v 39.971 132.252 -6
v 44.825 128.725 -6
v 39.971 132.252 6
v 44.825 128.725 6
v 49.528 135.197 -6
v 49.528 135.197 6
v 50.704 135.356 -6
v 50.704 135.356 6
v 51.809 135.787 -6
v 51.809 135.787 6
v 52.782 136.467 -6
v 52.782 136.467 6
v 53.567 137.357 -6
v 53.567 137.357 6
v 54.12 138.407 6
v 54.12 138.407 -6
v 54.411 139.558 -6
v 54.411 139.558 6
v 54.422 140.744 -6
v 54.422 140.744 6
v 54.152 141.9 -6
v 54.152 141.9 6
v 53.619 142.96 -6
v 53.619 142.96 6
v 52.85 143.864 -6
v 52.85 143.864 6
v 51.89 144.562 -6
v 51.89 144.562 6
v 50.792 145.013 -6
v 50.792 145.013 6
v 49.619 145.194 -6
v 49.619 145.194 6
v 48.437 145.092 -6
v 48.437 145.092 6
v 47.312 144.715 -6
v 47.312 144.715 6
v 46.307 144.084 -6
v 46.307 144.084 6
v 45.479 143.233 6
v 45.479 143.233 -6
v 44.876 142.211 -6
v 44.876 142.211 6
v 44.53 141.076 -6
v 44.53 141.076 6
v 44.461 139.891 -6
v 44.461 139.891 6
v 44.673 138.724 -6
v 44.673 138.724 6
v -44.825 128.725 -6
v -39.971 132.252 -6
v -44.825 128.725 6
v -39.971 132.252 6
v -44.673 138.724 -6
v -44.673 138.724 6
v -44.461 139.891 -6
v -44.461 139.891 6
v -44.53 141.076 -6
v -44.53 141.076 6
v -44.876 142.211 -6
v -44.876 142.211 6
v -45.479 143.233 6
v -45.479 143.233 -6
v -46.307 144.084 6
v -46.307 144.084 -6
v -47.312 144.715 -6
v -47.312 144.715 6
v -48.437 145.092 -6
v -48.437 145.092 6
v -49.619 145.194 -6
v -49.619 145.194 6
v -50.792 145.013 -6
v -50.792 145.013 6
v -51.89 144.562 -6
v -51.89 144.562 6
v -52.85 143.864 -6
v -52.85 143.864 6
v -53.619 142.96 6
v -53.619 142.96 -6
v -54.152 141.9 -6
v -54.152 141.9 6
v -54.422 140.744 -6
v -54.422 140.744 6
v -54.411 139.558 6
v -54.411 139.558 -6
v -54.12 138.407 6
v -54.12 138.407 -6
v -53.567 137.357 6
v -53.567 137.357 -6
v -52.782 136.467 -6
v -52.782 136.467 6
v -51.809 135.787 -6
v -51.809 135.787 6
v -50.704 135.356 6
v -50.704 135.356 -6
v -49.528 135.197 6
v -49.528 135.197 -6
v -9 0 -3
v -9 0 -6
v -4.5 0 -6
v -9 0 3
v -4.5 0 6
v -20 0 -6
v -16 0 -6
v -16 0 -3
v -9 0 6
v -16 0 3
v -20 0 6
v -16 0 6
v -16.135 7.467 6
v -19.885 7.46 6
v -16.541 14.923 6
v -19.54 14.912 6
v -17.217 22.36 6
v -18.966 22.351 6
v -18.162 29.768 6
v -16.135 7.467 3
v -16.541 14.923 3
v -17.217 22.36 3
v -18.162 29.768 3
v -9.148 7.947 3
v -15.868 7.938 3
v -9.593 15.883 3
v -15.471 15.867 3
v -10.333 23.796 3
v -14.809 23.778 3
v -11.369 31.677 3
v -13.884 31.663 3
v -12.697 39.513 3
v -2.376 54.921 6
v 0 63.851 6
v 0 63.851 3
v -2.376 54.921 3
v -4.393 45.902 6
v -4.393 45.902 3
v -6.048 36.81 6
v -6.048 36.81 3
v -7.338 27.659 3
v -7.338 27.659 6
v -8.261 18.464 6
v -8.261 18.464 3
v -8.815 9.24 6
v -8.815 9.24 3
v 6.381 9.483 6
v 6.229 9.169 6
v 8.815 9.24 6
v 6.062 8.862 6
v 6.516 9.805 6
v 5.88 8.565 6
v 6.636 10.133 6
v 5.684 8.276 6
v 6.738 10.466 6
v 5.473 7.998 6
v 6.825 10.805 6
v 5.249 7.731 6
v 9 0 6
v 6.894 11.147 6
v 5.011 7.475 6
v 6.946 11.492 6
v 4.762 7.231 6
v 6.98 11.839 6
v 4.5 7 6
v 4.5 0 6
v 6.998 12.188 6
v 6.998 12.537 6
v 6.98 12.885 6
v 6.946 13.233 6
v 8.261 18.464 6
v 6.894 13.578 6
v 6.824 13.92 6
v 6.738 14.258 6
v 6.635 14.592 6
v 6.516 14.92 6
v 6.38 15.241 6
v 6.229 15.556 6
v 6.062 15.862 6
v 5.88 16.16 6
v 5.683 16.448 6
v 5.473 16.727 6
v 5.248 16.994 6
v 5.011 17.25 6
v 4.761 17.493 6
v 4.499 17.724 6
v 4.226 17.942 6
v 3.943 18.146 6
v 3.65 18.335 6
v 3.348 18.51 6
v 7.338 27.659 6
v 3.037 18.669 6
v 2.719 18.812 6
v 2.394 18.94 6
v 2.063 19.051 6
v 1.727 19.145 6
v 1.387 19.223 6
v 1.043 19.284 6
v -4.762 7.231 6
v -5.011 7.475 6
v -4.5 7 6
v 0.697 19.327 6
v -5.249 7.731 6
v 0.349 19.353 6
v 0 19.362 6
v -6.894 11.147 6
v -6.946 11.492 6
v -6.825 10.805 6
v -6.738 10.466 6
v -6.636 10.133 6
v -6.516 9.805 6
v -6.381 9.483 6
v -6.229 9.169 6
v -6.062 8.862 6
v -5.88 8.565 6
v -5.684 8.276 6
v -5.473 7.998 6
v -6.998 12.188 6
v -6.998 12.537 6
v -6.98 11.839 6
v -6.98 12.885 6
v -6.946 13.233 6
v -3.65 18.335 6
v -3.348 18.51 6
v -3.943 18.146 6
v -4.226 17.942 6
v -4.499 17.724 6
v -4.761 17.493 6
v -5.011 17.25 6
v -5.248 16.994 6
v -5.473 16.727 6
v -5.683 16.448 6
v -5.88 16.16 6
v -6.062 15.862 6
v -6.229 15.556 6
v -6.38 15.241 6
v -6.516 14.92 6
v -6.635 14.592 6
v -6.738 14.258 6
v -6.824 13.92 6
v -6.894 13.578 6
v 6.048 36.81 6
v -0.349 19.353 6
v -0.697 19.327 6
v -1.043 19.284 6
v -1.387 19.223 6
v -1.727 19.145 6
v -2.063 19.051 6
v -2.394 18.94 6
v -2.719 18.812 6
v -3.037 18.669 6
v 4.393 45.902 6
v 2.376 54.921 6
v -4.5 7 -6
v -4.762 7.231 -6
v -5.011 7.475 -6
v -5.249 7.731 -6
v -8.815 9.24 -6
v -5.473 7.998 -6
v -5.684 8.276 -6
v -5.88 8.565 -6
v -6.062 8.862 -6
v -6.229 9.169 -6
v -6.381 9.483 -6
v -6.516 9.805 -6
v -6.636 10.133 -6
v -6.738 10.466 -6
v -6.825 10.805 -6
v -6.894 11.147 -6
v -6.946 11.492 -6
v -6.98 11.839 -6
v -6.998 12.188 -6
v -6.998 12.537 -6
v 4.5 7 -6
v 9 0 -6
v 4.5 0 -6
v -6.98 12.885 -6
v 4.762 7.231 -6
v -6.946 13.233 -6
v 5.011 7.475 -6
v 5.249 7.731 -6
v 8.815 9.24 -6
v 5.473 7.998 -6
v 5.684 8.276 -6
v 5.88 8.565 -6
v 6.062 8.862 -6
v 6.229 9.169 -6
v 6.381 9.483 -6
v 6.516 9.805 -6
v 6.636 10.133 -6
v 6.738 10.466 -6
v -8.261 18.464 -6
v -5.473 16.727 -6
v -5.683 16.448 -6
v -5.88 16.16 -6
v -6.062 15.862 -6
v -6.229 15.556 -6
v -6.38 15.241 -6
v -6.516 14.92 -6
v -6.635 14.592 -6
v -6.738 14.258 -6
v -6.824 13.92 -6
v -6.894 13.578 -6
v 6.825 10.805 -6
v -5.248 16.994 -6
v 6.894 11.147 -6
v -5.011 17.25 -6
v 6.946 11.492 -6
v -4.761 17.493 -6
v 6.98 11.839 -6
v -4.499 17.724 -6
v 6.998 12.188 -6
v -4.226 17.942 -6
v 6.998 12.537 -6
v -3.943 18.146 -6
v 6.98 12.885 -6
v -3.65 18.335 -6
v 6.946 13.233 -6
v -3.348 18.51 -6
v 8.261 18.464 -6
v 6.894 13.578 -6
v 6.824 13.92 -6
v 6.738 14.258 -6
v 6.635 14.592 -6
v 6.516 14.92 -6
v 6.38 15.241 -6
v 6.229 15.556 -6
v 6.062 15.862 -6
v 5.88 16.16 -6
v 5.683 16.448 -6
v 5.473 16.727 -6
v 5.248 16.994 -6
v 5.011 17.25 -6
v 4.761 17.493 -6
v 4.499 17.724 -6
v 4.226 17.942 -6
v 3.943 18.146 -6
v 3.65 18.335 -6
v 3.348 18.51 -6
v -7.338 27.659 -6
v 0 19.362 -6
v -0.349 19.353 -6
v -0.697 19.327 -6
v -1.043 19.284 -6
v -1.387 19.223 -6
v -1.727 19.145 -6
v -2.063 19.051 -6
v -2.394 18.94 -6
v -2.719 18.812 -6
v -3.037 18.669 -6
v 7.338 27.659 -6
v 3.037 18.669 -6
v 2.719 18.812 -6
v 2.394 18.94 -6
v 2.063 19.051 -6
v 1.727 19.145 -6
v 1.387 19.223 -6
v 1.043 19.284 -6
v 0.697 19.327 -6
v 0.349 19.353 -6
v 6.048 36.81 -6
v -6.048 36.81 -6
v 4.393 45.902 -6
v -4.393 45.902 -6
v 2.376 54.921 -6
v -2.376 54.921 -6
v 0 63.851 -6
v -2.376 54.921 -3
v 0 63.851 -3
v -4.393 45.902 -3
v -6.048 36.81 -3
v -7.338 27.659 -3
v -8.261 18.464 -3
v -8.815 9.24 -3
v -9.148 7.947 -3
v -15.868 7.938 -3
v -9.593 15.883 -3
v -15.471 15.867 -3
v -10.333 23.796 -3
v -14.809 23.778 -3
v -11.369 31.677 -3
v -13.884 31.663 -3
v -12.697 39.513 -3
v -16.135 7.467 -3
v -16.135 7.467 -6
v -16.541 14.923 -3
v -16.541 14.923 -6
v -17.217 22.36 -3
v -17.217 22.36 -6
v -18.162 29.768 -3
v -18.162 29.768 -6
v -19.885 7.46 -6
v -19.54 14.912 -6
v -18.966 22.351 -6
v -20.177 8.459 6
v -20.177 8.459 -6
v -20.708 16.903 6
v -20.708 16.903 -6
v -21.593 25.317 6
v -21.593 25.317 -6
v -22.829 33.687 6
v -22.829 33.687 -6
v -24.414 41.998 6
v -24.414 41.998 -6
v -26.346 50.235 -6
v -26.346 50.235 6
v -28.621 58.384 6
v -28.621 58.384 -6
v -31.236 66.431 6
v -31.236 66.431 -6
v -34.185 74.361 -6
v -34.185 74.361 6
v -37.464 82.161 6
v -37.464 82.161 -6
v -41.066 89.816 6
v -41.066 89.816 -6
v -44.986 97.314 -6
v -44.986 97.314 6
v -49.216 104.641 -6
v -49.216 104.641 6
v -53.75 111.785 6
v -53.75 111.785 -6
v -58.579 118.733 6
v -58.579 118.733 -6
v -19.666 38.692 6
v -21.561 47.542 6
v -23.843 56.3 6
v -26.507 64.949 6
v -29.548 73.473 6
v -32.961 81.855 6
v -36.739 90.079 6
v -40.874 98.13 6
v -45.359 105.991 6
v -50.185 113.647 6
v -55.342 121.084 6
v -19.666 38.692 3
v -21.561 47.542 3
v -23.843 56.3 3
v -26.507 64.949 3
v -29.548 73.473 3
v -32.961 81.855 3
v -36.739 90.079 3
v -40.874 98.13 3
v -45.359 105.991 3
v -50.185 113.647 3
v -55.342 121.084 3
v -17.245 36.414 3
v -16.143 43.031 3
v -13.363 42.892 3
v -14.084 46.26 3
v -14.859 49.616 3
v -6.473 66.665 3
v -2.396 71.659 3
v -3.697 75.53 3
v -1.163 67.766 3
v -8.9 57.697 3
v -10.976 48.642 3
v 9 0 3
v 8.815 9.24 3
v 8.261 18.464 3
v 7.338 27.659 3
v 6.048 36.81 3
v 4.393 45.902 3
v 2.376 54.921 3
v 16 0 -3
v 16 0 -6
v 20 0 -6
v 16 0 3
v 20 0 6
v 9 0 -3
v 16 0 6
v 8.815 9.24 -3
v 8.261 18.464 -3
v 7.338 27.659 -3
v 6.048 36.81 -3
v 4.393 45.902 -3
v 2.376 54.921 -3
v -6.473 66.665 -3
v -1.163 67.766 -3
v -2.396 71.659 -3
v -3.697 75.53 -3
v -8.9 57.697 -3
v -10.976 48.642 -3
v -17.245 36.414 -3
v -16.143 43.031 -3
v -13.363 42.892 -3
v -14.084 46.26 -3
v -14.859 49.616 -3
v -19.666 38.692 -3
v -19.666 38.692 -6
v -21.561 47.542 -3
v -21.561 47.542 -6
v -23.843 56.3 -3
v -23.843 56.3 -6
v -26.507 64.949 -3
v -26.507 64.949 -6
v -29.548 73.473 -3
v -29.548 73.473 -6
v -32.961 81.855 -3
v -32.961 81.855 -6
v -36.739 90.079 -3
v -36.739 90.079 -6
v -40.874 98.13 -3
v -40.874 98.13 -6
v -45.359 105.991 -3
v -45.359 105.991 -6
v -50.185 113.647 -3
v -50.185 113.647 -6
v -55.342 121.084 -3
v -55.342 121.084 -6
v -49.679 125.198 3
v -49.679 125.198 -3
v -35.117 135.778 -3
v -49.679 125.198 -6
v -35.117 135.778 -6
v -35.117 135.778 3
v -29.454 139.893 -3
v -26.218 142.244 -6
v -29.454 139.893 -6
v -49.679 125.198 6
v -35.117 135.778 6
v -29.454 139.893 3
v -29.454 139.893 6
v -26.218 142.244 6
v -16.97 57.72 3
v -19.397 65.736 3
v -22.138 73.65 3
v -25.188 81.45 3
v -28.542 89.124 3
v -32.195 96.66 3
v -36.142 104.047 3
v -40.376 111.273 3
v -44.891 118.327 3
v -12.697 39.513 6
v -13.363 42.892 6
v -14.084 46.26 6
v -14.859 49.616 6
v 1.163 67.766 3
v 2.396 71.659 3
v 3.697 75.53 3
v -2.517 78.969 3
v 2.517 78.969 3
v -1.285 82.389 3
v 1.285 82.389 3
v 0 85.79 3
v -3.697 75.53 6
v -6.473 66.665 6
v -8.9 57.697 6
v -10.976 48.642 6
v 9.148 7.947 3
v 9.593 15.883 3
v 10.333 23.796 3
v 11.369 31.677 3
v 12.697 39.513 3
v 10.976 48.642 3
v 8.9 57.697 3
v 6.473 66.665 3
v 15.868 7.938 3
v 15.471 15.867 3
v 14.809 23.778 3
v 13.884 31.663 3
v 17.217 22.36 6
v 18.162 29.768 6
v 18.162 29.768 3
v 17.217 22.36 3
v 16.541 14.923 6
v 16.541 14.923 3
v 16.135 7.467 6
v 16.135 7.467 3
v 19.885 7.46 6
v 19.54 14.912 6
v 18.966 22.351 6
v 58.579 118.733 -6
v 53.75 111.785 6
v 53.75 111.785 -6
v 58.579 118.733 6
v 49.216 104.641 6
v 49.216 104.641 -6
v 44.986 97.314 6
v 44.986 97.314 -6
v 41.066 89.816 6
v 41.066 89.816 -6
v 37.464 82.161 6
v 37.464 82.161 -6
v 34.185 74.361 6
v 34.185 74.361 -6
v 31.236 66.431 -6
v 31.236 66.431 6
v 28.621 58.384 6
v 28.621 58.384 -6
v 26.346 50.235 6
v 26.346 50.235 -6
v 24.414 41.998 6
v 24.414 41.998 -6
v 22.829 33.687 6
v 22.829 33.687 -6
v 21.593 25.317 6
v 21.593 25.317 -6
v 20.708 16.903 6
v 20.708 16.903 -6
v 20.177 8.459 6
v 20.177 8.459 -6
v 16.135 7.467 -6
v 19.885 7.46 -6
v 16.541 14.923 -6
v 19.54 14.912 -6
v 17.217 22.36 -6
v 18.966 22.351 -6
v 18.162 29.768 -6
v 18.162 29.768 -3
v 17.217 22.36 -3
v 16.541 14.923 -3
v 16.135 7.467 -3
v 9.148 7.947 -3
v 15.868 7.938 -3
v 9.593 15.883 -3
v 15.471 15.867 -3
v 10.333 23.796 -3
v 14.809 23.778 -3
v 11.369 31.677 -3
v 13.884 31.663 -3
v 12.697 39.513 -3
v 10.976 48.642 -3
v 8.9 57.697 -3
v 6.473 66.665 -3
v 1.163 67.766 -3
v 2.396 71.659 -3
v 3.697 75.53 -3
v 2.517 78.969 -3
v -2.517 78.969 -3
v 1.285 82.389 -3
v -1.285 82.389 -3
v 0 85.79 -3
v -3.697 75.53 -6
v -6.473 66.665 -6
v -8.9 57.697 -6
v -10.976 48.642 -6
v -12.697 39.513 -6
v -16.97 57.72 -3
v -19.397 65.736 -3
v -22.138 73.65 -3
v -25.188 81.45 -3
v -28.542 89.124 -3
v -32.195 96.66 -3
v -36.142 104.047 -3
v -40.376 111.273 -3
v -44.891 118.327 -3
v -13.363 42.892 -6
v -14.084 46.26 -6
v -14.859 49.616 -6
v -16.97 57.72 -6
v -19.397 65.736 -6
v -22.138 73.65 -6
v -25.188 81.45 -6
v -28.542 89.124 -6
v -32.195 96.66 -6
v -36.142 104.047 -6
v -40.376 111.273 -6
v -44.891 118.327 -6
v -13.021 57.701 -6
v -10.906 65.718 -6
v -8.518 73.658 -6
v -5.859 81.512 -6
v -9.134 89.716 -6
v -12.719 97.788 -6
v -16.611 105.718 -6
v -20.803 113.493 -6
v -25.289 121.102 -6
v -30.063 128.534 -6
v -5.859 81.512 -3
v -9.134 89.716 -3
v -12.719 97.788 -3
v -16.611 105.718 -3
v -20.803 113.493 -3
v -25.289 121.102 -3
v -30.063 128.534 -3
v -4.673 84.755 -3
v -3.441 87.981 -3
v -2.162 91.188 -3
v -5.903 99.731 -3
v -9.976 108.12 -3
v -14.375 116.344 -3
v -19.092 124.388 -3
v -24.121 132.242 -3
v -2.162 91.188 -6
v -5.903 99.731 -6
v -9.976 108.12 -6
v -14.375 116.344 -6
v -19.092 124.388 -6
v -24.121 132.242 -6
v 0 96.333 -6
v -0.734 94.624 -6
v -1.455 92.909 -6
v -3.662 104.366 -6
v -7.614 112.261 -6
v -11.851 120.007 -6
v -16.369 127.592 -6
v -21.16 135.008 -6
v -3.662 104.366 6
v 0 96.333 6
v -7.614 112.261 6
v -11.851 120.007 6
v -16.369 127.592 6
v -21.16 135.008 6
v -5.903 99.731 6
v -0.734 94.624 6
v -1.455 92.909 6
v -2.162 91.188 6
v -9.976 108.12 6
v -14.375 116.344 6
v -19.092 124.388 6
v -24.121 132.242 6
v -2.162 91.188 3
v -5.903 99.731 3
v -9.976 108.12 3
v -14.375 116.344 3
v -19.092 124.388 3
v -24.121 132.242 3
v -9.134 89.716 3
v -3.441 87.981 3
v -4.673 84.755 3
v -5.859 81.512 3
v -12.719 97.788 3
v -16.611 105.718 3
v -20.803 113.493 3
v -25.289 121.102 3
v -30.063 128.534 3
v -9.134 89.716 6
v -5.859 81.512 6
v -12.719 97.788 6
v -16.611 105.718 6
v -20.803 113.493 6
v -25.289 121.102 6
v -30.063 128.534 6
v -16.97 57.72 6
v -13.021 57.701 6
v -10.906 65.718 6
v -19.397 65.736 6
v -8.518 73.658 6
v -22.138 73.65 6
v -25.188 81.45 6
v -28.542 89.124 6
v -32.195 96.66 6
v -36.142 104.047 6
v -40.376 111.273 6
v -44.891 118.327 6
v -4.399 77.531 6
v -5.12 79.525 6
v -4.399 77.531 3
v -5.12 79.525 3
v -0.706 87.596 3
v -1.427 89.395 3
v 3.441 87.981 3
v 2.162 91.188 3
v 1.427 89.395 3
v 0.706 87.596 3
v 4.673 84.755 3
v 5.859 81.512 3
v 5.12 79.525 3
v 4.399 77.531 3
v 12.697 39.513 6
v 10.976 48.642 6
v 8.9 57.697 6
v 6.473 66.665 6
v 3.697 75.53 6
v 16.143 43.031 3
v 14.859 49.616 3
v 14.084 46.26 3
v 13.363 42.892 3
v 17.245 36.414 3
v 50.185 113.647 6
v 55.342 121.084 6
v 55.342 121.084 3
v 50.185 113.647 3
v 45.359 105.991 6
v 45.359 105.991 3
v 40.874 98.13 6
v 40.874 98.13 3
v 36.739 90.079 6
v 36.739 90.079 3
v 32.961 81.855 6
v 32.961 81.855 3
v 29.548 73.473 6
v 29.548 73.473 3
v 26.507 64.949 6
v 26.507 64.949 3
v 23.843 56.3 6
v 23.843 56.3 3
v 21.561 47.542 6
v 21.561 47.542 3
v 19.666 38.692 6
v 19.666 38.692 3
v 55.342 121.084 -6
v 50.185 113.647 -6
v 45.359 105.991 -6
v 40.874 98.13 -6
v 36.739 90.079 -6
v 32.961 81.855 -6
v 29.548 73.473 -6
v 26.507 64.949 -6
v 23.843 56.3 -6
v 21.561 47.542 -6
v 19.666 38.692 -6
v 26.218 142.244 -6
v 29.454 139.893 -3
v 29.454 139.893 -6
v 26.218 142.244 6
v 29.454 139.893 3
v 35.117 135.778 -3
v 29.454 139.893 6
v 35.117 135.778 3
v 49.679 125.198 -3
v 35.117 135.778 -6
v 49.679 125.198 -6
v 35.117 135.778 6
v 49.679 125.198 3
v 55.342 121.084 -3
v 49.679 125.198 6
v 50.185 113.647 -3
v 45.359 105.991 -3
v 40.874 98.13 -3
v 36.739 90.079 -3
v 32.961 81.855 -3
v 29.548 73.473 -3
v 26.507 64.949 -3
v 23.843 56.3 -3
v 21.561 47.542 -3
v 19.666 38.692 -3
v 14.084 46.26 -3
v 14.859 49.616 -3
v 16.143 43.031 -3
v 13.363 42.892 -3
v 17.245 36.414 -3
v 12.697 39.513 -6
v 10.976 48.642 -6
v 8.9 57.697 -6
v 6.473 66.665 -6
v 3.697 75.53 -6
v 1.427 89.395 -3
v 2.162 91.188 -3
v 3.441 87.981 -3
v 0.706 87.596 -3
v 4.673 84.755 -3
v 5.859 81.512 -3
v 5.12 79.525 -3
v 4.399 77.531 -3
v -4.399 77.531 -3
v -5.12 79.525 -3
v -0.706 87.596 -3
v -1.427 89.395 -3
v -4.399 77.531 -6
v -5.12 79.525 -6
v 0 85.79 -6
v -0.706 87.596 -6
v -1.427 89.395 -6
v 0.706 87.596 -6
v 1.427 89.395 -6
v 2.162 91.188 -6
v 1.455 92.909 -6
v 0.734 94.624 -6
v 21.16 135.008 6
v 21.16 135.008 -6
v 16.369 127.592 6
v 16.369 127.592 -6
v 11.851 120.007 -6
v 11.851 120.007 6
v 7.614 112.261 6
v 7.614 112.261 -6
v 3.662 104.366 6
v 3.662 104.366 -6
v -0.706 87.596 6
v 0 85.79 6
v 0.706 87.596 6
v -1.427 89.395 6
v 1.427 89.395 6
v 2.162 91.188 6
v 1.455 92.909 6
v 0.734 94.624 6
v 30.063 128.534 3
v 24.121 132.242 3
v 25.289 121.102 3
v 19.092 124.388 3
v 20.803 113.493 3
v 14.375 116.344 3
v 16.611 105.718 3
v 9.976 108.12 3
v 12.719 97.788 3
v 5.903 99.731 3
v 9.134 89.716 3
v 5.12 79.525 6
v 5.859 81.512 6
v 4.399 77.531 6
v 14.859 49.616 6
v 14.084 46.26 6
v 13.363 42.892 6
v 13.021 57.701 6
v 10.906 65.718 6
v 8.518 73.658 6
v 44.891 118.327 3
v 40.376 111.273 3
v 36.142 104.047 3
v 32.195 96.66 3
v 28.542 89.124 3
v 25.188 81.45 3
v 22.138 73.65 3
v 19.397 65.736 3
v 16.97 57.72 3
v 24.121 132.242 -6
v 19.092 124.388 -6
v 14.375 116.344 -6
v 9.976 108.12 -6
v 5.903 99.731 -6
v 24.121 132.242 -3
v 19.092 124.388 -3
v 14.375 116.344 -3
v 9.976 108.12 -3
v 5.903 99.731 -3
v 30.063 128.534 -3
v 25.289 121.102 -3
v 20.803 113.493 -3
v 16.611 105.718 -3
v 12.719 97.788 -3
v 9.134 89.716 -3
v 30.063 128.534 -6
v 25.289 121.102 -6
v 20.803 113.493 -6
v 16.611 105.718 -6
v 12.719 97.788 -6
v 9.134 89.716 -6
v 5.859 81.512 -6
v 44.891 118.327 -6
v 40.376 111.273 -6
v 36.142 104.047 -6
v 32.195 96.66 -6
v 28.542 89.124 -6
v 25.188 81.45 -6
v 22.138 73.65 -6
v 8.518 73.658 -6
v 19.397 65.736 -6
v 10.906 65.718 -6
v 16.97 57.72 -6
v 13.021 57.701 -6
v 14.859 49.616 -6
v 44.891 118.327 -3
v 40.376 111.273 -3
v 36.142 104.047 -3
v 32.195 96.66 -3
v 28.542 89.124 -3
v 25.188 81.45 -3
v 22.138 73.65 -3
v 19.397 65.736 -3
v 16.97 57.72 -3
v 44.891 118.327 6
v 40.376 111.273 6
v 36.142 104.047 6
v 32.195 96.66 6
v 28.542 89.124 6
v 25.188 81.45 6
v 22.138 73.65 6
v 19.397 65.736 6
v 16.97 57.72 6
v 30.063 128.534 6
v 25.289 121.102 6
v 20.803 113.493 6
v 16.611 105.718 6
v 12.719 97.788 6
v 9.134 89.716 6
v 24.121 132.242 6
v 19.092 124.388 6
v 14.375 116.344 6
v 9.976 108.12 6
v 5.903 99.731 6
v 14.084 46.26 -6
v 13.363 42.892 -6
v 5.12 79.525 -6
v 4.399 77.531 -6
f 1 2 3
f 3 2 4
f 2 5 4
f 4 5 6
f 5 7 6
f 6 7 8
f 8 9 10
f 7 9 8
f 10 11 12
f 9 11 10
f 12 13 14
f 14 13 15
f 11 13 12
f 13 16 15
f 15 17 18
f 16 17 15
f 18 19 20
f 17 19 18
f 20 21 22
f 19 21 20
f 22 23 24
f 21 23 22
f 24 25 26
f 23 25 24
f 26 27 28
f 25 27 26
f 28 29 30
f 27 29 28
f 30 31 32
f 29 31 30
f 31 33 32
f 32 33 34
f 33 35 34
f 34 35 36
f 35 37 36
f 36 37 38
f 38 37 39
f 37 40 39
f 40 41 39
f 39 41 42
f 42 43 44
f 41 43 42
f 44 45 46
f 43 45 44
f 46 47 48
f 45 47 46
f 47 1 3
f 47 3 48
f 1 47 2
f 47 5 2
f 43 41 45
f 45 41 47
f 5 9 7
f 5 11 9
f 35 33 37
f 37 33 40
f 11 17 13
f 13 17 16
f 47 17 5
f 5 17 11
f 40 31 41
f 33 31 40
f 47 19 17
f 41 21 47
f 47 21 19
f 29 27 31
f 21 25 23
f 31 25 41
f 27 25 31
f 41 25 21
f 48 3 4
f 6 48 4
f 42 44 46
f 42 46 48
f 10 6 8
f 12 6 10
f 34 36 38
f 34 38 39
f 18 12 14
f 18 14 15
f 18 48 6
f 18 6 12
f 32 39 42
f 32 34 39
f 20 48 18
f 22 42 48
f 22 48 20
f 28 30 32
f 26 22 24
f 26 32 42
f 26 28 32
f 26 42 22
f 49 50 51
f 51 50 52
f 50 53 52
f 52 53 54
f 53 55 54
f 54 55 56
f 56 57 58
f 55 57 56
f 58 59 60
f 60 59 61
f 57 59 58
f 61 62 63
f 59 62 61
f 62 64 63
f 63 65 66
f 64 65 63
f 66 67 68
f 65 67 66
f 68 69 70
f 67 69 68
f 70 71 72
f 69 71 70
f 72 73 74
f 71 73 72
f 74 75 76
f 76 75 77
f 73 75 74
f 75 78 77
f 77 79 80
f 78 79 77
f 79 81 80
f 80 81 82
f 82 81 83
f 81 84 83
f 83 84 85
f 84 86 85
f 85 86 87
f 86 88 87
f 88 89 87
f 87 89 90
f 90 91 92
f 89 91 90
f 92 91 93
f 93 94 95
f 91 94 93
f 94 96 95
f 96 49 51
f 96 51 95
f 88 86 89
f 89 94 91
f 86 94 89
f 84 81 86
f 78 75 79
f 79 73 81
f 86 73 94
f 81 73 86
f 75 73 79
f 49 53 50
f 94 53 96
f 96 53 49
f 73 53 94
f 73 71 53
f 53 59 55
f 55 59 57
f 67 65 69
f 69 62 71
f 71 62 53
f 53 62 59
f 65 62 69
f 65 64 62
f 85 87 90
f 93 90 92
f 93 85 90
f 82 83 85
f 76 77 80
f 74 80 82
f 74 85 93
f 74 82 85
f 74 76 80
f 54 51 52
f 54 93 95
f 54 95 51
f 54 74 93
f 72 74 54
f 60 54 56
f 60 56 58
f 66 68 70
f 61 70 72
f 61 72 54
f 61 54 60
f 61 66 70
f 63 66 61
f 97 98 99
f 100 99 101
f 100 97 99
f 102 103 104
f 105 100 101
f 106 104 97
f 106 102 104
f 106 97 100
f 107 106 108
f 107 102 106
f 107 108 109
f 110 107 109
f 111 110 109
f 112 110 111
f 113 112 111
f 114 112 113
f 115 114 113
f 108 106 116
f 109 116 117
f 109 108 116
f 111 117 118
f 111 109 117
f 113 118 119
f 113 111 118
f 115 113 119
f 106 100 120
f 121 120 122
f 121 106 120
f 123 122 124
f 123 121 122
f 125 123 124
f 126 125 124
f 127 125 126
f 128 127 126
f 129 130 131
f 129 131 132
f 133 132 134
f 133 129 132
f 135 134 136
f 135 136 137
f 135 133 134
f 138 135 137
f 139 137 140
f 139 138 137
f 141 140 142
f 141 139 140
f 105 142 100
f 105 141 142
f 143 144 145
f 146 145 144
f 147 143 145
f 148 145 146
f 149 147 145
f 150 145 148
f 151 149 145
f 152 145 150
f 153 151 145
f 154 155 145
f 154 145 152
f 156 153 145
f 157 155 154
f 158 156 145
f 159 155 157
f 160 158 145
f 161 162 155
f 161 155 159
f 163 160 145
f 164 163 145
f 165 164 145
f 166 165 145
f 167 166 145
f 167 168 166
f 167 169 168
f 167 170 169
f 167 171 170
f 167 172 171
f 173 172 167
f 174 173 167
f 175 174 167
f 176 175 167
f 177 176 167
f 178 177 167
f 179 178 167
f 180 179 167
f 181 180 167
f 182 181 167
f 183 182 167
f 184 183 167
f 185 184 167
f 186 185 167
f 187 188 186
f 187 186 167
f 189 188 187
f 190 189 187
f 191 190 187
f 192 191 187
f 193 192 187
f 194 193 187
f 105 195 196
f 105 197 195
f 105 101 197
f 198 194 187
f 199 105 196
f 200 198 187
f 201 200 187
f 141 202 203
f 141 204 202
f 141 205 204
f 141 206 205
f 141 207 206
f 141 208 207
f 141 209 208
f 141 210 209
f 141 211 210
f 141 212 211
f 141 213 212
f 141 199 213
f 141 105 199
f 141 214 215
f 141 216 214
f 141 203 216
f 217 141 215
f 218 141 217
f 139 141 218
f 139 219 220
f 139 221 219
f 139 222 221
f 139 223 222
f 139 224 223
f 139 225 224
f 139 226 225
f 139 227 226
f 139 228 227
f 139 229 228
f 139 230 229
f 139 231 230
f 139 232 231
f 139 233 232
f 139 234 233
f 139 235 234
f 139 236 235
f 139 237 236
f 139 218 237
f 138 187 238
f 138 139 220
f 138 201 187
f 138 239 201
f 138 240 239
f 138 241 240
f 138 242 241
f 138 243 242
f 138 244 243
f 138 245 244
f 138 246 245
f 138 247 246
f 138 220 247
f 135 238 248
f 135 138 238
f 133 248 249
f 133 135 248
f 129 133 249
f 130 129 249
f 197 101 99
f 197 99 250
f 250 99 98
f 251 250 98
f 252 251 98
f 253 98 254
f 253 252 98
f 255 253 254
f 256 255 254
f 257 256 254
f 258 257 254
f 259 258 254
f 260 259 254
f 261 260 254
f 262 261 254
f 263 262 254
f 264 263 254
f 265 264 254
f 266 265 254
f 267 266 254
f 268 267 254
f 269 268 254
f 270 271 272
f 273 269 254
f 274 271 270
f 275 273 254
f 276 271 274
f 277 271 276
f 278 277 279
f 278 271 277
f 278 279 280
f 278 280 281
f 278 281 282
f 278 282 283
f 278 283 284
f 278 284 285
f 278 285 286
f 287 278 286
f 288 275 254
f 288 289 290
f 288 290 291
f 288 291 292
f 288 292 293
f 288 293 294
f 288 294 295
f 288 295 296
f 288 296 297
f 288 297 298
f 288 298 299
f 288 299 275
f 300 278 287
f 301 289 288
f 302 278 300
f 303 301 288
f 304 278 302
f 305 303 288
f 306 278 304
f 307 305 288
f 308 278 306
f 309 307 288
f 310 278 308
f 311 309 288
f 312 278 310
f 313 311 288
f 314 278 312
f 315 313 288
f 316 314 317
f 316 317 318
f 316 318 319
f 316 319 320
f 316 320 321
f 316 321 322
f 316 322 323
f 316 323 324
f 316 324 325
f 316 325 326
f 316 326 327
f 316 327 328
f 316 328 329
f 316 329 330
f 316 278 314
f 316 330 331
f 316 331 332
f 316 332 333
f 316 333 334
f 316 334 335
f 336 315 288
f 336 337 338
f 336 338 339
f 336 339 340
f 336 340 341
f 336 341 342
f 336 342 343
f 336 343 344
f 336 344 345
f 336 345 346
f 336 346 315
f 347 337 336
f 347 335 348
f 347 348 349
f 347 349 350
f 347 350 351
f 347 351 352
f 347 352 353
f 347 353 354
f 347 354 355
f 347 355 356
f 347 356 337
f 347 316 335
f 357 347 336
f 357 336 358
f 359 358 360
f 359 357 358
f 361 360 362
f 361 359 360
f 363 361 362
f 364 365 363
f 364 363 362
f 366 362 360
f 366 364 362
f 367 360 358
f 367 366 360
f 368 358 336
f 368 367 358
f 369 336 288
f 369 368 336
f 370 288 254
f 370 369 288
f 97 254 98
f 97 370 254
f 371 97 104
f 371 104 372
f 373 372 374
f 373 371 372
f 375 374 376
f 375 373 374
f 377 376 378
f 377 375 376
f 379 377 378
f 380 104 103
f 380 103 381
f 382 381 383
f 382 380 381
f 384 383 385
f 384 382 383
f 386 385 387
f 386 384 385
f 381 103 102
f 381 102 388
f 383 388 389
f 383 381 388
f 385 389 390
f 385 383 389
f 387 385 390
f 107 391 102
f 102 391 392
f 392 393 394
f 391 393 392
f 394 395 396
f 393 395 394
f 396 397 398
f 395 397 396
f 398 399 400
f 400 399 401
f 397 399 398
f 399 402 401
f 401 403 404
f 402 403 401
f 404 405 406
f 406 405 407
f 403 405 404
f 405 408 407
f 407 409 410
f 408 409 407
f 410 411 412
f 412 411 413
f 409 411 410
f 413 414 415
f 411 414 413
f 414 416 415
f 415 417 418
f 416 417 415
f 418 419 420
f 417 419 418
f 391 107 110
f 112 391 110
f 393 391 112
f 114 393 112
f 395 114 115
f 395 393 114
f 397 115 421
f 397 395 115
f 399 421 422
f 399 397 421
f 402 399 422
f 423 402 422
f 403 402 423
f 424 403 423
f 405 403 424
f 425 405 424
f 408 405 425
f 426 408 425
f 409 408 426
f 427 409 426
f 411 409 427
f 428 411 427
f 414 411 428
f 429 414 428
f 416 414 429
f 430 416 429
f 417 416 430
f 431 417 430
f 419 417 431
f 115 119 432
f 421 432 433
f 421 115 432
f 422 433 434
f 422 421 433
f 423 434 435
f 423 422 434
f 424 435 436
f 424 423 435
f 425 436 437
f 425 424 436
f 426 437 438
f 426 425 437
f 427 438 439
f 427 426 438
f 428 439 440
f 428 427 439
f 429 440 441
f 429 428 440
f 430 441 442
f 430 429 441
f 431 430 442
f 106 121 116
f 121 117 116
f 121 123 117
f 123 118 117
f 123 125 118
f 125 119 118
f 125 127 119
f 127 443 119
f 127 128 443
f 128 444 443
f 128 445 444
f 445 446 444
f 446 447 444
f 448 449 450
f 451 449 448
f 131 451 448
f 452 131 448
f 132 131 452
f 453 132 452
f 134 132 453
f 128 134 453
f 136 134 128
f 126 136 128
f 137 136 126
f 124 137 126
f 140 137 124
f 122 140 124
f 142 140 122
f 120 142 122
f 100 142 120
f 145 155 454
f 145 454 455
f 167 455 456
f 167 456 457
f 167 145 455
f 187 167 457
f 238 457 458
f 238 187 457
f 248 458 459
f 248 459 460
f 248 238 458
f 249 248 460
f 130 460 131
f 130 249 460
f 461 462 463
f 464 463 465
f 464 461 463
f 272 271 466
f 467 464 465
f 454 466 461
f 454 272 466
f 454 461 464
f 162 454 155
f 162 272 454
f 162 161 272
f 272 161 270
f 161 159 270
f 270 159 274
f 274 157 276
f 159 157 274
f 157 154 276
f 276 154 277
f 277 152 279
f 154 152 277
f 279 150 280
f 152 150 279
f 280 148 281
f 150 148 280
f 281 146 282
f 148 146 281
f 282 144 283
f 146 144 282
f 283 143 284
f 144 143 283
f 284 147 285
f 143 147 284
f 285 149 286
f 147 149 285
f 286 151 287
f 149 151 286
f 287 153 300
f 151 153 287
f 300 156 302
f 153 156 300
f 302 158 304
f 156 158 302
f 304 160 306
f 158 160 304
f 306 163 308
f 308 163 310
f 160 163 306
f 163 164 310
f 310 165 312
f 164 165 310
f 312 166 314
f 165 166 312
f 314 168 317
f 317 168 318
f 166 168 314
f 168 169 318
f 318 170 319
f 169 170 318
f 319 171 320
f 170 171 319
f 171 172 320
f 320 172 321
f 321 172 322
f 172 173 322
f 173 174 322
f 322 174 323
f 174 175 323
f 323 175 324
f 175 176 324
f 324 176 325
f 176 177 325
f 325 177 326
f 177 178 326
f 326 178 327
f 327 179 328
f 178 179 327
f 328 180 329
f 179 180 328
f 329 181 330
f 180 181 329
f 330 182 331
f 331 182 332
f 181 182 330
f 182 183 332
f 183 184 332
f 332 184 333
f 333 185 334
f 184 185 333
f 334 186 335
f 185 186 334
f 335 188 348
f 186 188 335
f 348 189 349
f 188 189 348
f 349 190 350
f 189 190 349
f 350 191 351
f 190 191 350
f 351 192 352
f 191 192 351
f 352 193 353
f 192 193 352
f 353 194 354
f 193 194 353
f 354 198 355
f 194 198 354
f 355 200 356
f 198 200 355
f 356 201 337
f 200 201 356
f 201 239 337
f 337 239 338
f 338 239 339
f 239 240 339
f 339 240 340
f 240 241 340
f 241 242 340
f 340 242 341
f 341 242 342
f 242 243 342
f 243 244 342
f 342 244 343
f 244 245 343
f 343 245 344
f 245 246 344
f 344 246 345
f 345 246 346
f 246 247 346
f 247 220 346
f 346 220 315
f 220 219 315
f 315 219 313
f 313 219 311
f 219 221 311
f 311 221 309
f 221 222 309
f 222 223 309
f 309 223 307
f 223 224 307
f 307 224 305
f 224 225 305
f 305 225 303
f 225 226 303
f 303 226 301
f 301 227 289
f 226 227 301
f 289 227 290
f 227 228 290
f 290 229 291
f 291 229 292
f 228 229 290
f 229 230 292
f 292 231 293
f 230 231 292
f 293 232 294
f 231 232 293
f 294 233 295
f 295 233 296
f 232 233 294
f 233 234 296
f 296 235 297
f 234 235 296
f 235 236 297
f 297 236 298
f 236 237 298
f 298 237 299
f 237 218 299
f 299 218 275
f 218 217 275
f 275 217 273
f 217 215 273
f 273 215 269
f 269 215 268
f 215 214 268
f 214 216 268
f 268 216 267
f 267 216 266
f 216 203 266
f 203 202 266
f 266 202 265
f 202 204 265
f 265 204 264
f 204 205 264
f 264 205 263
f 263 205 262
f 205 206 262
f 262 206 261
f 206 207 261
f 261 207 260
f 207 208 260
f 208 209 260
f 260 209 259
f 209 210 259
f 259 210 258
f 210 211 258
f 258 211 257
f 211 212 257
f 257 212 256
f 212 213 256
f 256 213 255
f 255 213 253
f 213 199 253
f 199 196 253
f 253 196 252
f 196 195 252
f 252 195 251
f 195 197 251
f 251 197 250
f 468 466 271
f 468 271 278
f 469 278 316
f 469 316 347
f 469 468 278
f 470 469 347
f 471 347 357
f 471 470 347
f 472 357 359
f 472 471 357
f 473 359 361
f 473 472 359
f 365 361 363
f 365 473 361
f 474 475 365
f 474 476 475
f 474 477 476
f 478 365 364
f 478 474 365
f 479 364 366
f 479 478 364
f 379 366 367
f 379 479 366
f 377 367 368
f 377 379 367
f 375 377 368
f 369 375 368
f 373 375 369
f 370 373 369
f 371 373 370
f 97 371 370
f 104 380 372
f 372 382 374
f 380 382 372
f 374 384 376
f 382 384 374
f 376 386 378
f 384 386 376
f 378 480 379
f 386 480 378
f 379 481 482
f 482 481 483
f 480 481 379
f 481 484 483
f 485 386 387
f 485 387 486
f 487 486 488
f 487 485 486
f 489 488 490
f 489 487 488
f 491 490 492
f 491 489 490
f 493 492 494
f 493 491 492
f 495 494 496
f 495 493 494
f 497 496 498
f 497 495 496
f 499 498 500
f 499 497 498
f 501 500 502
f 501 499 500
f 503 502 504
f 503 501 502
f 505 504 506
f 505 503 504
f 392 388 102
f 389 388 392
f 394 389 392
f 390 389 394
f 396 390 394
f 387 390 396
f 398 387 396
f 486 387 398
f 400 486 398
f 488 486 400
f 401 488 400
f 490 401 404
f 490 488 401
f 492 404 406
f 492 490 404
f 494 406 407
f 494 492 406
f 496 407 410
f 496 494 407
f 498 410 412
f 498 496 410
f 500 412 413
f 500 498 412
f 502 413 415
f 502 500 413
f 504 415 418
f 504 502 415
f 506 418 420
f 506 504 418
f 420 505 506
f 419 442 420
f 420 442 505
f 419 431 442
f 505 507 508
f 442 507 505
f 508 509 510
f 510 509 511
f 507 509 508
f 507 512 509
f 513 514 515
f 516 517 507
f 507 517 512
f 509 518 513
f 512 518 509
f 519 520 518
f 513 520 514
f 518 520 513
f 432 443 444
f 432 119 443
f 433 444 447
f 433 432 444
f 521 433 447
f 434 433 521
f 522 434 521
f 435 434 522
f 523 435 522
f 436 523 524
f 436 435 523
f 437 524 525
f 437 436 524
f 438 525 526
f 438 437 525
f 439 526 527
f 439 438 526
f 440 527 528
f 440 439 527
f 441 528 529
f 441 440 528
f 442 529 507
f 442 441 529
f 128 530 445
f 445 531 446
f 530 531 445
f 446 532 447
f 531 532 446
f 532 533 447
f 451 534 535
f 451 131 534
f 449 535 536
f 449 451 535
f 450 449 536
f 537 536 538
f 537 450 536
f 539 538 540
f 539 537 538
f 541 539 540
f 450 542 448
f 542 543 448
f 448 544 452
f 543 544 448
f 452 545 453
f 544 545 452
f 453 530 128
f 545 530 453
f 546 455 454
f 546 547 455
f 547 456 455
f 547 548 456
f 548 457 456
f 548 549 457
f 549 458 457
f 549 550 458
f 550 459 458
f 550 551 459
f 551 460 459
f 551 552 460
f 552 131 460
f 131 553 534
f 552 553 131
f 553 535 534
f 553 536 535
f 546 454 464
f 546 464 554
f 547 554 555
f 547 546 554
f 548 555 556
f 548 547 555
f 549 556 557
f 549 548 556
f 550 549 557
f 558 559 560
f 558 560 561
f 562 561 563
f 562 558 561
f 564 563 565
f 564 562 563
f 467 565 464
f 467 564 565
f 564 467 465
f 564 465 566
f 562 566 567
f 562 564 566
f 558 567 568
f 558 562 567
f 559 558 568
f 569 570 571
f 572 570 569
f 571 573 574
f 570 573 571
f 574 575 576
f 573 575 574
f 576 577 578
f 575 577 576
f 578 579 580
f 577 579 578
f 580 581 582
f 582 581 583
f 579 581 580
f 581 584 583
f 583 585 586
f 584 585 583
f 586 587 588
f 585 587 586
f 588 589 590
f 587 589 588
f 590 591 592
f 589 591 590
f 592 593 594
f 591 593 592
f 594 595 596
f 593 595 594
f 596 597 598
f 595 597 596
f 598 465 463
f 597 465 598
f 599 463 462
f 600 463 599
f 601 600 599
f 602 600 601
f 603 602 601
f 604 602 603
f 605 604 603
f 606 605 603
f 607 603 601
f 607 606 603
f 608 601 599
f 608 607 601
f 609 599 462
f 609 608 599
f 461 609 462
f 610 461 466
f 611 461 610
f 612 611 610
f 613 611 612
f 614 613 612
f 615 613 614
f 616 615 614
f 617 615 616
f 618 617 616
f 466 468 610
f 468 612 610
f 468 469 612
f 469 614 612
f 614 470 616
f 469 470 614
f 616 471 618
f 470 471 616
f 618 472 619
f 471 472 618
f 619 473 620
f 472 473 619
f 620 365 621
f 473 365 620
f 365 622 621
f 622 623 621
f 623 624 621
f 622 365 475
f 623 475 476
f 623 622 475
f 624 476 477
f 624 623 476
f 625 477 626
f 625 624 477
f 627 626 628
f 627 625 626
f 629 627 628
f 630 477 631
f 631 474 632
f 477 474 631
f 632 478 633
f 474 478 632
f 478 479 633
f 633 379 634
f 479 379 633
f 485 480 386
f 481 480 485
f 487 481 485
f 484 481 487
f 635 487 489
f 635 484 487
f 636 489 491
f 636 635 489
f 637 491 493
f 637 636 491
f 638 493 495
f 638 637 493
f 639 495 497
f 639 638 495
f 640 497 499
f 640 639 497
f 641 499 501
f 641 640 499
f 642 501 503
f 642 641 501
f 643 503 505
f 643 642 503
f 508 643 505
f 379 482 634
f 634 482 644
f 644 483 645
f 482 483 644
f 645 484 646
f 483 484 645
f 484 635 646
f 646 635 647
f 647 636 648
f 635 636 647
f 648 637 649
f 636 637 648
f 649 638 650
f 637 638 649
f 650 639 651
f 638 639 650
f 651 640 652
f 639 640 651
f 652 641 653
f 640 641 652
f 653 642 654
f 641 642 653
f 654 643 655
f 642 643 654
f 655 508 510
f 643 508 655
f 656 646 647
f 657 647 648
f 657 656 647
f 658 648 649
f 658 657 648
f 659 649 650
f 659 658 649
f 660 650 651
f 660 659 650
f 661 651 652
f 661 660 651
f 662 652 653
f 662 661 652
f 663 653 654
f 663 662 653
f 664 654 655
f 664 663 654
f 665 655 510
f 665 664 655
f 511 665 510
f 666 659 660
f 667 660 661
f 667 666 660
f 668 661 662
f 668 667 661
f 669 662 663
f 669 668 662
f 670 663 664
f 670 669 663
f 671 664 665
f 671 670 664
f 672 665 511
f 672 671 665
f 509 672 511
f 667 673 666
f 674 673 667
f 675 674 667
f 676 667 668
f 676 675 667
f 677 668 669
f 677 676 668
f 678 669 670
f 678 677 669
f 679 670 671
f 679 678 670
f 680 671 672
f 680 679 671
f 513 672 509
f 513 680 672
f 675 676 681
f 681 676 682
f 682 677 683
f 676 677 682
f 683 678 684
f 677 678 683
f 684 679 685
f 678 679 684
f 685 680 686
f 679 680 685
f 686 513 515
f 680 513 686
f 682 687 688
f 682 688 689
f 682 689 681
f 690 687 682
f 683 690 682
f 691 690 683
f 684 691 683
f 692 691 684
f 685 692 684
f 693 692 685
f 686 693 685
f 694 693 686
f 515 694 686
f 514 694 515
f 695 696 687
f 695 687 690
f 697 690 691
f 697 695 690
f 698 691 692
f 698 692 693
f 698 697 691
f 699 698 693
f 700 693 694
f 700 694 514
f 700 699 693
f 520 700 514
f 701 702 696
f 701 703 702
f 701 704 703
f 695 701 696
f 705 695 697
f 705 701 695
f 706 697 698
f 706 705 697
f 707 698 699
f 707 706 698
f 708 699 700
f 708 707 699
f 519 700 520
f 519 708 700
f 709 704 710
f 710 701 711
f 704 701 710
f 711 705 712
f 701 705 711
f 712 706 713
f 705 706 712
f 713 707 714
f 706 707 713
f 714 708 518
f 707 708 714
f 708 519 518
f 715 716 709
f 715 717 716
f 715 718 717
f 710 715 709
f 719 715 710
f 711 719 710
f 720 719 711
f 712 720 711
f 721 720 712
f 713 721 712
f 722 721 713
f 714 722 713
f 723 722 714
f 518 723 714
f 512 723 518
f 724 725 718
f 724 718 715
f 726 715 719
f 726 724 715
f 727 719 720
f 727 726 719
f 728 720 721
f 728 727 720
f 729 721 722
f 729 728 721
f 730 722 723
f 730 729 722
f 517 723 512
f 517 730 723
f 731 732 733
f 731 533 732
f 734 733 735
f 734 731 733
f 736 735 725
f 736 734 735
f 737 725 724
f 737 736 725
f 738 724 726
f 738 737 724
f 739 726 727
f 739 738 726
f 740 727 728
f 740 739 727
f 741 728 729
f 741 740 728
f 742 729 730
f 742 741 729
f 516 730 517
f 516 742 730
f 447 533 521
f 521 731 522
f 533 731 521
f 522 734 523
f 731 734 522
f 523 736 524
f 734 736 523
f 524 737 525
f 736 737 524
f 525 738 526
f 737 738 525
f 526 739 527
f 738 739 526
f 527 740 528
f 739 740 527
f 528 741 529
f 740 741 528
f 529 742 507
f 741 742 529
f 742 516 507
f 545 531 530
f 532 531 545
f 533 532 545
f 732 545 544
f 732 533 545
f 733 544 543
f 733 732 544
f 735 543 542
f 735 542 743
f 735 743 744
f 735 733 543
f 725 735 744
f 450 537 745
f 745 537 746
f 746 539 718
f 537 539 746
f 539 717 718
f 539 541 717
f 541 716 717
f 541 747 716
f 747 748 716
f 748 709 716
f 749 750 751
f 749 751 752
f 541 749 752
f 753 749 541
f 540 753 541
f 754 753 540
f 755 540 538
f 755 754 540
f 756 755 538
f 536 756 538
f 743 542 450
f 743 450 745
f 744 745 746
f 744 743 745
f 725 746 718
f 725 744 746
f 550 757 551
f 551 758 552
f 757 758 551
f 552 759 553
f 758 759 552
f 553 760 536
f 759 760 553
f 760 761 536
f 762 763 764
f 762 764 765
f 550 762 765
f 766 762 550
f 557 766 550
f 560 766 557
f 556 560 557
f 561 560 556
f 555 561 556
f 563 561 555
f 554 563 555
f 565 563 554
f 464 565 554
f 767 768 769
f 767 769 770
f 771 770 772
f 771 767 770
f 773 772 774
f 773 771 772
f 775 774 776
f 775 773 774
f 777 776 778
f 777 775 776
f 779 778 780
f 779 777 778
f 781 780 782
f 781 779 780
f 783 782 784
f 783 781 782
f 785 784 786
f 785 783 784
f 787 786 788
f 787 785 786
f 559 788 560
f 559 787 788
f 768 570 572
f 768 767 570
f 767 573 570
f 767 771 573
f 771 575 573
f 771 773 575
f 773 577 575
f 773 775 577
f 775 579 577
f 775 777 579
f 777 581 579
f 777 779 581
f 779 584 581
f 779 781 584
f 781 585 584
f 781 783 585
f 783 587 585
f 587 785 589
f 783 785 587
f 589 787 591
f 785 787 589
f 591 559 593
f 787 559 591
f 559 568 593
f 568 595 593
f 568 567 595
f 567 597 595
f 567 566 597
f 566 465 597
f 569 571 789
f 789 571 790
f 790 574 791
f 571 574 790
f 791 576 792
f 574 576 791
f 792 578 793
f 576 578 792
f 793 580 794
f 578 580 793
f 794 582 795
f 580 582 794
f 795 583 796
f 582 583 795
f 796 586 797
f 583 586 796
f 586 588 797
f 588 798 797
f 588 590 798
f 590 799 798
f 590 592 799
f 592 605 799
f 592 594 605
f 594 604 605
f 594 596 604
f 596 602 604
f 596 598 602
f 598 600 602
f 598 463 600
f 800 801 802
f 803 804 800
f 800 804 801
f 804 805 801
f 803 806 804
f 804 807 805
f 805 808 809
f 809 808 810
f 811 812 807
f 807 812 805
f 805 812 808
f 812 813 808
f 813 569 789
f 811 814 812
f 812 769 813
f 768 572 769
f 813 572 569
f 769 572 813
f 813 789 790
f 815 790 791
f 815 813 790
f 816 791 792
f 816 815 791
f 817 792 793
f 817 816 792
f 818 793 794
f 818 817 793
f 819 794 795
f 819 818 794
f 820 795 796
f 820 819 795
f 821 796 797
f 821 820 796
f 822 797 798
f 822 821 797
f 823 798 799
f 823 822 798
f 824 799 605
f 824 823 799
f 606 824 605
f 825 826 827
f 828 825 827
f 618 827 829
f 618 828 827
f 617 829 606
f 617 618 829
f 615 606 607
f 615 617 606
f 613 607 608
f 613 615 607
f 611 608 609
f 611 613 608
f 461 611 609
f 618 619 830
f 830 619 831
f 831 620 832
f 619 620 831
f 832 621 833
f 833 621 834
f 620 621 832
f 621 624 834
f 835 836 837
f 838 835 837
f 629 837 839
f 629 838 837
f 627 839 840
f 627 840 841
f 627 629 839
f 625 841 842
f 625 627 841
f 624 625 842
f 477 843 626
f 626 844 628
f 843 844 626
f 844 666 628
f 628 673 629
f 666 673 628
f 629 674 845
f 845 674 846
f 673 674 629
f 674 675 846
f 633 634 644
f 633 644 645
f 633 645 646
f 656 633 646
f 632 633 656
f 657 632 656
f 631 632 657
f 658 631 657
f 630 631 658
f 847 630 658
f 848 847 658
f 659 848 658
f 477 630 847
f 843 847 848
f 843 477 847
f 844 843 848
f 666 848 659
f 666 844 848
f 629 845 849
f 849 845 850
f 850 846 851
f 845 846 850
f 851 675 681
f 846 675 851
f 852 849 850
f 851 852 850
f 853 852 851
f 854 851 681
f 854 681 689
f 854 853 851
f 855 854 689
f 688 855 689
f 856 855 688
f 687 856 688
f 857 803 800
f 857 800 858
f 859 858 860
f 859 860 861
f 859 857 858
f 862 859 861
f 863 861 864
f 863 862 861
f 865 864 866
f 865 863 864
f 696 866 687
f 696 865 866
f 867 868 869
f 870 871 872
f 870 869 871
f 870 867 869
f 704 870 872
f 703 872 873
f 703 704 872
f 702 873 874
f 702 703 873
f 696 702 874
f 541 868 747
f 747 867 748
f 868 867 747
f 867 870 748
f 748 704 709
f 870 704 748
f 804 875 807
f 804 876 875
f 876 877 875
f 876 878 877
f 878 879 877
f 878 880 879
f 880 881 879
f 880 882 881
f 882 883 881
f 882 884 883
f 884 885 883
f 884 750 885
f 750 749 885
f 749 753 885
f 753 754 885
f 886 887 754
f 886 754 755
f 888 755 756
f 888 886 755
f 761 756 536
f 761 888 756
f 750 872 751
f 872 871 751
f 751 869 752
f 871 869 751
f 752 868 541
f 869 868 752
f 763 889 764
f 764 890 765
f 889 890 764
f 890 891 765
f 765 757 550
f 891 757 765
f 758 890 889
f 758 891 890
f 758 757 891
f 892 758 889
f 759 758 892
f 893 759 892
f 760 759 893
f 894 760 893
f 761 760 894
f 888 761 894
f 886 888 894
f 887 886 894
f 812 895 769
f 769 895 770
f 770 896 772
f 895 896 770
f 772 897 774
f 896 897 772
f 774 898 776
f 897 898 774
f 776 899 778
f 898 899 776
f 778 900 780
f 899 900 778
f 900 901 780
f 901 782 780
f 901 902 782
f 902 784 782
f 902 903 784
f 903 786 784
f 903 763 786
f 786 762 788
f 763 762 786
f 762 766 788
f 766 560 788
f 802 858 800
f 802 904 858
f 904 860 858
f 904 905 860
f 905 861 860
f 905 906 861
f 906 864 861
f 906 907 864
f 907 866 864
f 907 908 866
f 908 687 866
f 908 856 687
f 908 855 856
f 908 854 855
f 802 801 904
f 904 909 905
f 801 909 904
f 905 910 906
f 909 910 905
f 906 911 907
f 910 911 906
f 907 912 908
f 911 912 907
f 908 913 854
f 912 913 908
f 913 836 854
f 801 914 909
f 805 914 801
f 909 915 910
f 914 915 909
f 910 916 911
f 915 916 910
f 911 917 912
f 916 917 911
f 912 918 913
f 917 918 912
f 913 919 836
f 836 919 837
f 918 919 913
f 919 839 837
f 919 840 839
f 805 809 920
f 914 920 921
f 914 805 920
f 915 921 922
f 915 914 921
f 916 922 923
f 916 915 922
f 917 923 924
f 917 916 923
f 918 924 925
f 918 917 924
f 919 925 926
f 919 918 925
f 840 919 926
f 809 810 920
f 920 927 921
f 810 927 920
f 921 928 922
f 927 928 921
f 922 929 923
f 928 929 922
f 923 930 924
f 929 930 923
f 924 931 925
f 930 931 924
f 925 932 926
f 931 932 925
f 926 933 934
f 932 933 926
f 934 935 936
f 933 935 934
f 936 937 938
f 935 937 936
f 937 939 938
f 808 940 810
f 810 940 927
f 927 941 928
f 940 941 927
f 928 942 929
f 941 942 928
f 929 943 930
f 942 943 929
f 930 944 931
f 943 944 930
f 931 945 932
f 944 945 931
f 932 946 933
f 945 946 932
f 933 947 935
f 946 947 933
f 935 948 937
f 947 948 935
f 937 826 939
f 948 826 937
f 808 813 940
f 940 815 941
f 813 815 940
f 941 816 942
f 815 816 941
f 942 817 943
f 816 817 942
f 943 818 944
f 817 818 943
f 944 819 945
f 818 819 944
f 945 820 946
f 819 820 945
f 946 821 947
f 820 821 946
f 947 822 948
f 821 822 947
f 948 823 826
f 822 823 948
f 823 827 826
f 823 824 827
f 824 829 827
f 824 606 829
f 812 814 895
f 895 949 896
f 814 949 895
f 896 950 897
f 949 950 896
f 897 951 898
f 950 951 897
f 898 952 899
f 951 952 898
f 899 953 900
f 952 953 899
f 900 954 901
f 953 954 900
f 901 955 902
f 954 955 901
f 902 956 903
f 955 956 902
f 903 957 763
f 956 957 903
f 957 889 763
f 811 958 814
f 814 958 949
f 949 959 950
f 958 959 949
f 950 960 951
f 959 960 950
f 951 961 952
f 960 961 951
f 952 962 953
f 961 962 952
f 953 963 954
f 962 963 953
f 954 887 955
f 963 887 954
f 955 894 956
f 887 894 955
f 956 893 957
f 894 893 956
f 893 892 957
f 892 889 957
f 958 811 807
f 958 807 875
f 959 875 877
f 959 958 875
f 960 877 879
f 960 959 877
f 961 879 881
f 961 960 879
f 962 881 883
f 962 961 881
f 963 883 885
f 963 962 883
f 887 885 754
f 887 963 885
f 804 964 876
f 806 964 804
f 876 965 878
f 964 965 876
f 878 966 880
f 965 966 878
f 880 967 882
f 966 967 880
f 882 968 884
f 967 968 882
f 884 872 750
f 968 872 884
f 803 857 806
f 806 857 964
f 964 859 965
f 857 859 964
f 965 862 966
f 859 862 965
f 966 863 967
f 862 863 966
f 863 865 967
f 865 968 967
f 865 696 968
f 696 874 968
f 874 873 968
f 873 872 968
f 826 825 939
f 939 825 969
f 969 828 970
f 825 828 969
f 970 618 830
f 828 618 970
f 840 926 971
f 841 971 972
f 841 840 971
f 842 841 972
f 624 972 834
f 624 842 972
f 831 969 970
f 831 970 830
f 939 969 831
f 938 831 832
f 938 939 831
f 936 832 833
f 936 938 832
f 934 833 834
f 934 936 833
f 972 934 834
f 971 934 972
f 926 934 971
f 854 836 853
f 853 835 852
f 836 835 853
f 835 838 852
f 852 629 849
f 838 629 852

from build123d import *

# Parameters (mm, degrees)
SKETCH003_W       = 7
SKETCH003_H       = 3
SKETCH004_W       = 7
SKETCH004_H       = 3
SKETCH005_W       = 7
SKETCH005_H       = 3
SKETCH006_W       = 7
SKETCH006_H       = 3
POCKET_DEPTH      = 6.001
POCKET_DEPTH_BACK = -6.001
PAD001_DEPTH      = 6
PAD002_DEPTH      = 6


with BuildPart() as main:
    # AdditivePipe: sweep along a path in Sketch
    with BuildLine(Plane.XY) as additivepipe_path:
        ThreePointArc((0, 0), (-10.865453, 68.601773), (-42.398227, 130.488326))
    # Sketch002 → AdditivePipe (sweep)
    with BuildSketch(Plane.XZ):
        Polygon((-20, 6), (-20, -6), (-16, -6), (-16, -3), (-9, -3), (-9, -6), (9, -6), (9, -3), (16, -3), (16, -6), (20, -6), (20, 6), (16, 6), (16, 3), (9, 3), (9, 6), (-9, 6), (-9, 3), (-16, 3), (-16, 6), align=None)
    sweep(path=additivepipe_path.line)

    # AdditivePipe001: sweep along a path in Sketch001
    with BuildLine(Plane.XY) as additivepipe001_path:
        ThreePointArc((42.398227, 130.488326), (10.865453, 68.601773), (0, 0))
    # Sketch002 → AdditivePipe001 (sweep)
    with BuildSketch(Plane.XZ):
        Polygon((-20, 6), (-20, -6), (-16, -6), (-16, -3), (-9, -3), (-9, -6), (9, -6), (9, -3), (16, -3), (16, -6), (20, -6), (20, 6), (16, 6), (16, 3), (9, 3), (9, 6), (-9, 6), (-9, 3), (-16, 3), (-16, 6), align=None)
    sweep(path=additivepipe001_path.line)

    # SubtractivePipe: sweep along a path in Sketch
    with BuildLine(Plane.XY) as subtractivepipe_path:
        ThreePointArc((0, 0), (-10.865453, 68.601773), (-42.398227, 130.488326))
    # Sketch003 → SubtractivePipe (sweep, cut)
    with BuildSketch(Plane.XZ):
        with Locations((-12.5, 4.5)):
            Rectangle(SKETCH003_W, SKETCH003_H)
    sweep(path=subtractivepipe_path.line, mode=Mode.SUBTRACT)

    # SubtractivePipe001: sweep along a path in Sketch001
    with BuildLine(Plane.XY) as subtractivepipe001_path:
        ThreePointArc((42.398227, 130.488326), (10.865453, 68.601773), (0, 0))
    # Sketch003 → SubtractivePipe001 (sweep, cut)
    with BuildSketch(Plane.XZ):
        with Locations((-12.5, 4.5)):
            Rectangle(SKETCH003_W, SKETCH003_H)
    sweep(path=subtractivepipe001_path.line, mode=Mode.SUBTRACT)

    # SubtractivePipe002: sweep along a path in Sketch
    with BuildLine(Plane.XY) as subtractivepipe002_path:
        ThreePointArc((0, 0), (-10.865453, 68.601773), (-42.398227, 130.488326))
    # Sketch004 → SubtractivePipe002 (sweep, cut)
    with BuildSketch(Plane.XZ):
        with Locations((12.5, 4.5)):
            Rectangle(SKETCH004_W, SKETCH004_H)
    sweep(path=subtractivepipe002_path.line, mode=Mode.SUBTRACT)

    # SubtractivePipe003: sweep along a path in Sketch001
    with BuildLine(Plane.XY) as subtractivepipe003_path:
        ThreePointArc((42.398227, 130.488326), (10.865453, 68.601773), (0, 0))
    # Sketch004 → SubtractivePipe003 (sweep, cut)
    with BuildSketch(Plane.XZ):
        with Locations((12.5, 4.5)):
            Rectangle(SKETCH004_W, SKETCH004_H)
    sweep(path=subtractivepipe003_path.line, mode=Mode.SUBTRACT)

    # SubtractivePipe004: sweep along a path in Sketch
    with BuildLine(Plane.XY) as subtractivepipe004_path:
        ThreePointArc((0, 0), (-10.865453, 68.601773), (-42.398227, 130.488326))
    # Sketch005 → SubtractivePipe004 (sweep, cut)
    with BuildSketch(Plane.XZ):
        with Locations((-12.5, -4.5)):
            Rectangle(SKETCH005_W, SKETCH005_H)
    sweep(path=subtractivepipe004_path.line, mode=Mode.SUBTRACT)

    # SubtractivePipe005: sweep along a path in Sketch001
    with BuildLine(Plane.XY) as subtractivepipe005_path:
        ThreePointArc((42.398227, 130.488326), (10.865453, 68.601773), (0, 0))
    # Sketch005 → SubtractivePipe005 (sweep, cut)
    with BuildSketch(Plane.XZ):
        with Locations((-12.5, -4.5)):
            Rectangle(SKETCH005_W, SKETCH005_H)
    sweep(path=subtractivepipe005_path.line, mode=Mode.SUBTRACT)

    # SubtractivePipe006: sweep along a path in Sketch
    with BuildLine(Plane.XY) as subtractivepipe006_path:
        ThreePointArc((0, 0), (-10.865453, 68.601773), (-42.398227, 130.488326))
    # Sketch006 → SubtractivePipe006 (sweep, cut)
    with BuildSketch(Plane.XZ):
        with Locations((12.5, -4.5)):
            Rectangle(SKETCH006_W, SKETCH006_H)
    sweep(path=subtractivepipe006_path.line, mode=Mode.SUBTRACT)

    # SubtractivePipe007: sweep along a path in Sketch001
    with BuildLine(Plane.XY) as subtractivepipe007_path:
        ThreePointArc((42.398227, 130.488326), (10.865453, 68.601773), (0, 0))
    # Sketch006 → SubtractivePipe007 (sweep, cut)
    with BuildSketch(Plane.XZ):
        with Locations((12.5, -4.5)):
            Rectangle(SKETCH006_W, SKETCH006_H)
    sweep(path=subtractivepipe007_path.line, mode=Mode.SUBTRACT)

    # Sketch007 → Pocket (cut, two sides)
    with BuildSketch(Plane.XY) as pocket_sk:
        with BuildLine():
            Line((-4.5, 0), (4.5, 0))
            Line((4.5, 0), (4.5, 7))
            ThreePointArc((4.5, 7), (0, 19.361903), (-4.5, 7))
            Line((-4.5, 0), (-4.5, 7))
        make_face()
    extrude(amount=-POCKET_DEPTH, mode=Mode.SUBTRACT)
    extrude(pocket_sk.sketch, amount=-POCKET_DEPTH_BACK, mode=Mode.SUBTRACT)


with BuildPart() as male3:
    # Sketch011 → Pad001 (new body, symmetric)
    with BuildSketch(Plane.XY):
        with BuildLine():
            Line((39.971176, 132.251682), (44.825278, 128.72497))
            Line((44.825278, 128.72497), (49.52756, 135.197106))
            ThreePointArc((49.52756, 135.197106), (52.390577, 144.241615), (44.673458, 138.723818))
            Line((39.971176, 132.251682), (44.673458, 138.723818))
        make_face()
    extrude(amount=PAD001_DEPTH, both=True)


with BuildPart() as male2:
    # Sketch012 → Pad002 (new body, symmetric)
    with BuildSketch(Plane.XY):
        with BuildLine():
            Line((-44.825278, 128.72497), (-39.971176, 132.251682))
            Line((-39.971176, 132.251682), (-44.673458, 138.723818))
            ThreePointArc((-44.673458, 138.723818), (-52.390577, 144.241615), (-49.52756, 135.197106))
            Line((-44.825278, 128.72497), (-49.52756, 135.197106))
        make_face()
    extrude(amount=PAD002_DEPTH, both=True)


solid = Compound([main.part, male3.part, male2.part])
